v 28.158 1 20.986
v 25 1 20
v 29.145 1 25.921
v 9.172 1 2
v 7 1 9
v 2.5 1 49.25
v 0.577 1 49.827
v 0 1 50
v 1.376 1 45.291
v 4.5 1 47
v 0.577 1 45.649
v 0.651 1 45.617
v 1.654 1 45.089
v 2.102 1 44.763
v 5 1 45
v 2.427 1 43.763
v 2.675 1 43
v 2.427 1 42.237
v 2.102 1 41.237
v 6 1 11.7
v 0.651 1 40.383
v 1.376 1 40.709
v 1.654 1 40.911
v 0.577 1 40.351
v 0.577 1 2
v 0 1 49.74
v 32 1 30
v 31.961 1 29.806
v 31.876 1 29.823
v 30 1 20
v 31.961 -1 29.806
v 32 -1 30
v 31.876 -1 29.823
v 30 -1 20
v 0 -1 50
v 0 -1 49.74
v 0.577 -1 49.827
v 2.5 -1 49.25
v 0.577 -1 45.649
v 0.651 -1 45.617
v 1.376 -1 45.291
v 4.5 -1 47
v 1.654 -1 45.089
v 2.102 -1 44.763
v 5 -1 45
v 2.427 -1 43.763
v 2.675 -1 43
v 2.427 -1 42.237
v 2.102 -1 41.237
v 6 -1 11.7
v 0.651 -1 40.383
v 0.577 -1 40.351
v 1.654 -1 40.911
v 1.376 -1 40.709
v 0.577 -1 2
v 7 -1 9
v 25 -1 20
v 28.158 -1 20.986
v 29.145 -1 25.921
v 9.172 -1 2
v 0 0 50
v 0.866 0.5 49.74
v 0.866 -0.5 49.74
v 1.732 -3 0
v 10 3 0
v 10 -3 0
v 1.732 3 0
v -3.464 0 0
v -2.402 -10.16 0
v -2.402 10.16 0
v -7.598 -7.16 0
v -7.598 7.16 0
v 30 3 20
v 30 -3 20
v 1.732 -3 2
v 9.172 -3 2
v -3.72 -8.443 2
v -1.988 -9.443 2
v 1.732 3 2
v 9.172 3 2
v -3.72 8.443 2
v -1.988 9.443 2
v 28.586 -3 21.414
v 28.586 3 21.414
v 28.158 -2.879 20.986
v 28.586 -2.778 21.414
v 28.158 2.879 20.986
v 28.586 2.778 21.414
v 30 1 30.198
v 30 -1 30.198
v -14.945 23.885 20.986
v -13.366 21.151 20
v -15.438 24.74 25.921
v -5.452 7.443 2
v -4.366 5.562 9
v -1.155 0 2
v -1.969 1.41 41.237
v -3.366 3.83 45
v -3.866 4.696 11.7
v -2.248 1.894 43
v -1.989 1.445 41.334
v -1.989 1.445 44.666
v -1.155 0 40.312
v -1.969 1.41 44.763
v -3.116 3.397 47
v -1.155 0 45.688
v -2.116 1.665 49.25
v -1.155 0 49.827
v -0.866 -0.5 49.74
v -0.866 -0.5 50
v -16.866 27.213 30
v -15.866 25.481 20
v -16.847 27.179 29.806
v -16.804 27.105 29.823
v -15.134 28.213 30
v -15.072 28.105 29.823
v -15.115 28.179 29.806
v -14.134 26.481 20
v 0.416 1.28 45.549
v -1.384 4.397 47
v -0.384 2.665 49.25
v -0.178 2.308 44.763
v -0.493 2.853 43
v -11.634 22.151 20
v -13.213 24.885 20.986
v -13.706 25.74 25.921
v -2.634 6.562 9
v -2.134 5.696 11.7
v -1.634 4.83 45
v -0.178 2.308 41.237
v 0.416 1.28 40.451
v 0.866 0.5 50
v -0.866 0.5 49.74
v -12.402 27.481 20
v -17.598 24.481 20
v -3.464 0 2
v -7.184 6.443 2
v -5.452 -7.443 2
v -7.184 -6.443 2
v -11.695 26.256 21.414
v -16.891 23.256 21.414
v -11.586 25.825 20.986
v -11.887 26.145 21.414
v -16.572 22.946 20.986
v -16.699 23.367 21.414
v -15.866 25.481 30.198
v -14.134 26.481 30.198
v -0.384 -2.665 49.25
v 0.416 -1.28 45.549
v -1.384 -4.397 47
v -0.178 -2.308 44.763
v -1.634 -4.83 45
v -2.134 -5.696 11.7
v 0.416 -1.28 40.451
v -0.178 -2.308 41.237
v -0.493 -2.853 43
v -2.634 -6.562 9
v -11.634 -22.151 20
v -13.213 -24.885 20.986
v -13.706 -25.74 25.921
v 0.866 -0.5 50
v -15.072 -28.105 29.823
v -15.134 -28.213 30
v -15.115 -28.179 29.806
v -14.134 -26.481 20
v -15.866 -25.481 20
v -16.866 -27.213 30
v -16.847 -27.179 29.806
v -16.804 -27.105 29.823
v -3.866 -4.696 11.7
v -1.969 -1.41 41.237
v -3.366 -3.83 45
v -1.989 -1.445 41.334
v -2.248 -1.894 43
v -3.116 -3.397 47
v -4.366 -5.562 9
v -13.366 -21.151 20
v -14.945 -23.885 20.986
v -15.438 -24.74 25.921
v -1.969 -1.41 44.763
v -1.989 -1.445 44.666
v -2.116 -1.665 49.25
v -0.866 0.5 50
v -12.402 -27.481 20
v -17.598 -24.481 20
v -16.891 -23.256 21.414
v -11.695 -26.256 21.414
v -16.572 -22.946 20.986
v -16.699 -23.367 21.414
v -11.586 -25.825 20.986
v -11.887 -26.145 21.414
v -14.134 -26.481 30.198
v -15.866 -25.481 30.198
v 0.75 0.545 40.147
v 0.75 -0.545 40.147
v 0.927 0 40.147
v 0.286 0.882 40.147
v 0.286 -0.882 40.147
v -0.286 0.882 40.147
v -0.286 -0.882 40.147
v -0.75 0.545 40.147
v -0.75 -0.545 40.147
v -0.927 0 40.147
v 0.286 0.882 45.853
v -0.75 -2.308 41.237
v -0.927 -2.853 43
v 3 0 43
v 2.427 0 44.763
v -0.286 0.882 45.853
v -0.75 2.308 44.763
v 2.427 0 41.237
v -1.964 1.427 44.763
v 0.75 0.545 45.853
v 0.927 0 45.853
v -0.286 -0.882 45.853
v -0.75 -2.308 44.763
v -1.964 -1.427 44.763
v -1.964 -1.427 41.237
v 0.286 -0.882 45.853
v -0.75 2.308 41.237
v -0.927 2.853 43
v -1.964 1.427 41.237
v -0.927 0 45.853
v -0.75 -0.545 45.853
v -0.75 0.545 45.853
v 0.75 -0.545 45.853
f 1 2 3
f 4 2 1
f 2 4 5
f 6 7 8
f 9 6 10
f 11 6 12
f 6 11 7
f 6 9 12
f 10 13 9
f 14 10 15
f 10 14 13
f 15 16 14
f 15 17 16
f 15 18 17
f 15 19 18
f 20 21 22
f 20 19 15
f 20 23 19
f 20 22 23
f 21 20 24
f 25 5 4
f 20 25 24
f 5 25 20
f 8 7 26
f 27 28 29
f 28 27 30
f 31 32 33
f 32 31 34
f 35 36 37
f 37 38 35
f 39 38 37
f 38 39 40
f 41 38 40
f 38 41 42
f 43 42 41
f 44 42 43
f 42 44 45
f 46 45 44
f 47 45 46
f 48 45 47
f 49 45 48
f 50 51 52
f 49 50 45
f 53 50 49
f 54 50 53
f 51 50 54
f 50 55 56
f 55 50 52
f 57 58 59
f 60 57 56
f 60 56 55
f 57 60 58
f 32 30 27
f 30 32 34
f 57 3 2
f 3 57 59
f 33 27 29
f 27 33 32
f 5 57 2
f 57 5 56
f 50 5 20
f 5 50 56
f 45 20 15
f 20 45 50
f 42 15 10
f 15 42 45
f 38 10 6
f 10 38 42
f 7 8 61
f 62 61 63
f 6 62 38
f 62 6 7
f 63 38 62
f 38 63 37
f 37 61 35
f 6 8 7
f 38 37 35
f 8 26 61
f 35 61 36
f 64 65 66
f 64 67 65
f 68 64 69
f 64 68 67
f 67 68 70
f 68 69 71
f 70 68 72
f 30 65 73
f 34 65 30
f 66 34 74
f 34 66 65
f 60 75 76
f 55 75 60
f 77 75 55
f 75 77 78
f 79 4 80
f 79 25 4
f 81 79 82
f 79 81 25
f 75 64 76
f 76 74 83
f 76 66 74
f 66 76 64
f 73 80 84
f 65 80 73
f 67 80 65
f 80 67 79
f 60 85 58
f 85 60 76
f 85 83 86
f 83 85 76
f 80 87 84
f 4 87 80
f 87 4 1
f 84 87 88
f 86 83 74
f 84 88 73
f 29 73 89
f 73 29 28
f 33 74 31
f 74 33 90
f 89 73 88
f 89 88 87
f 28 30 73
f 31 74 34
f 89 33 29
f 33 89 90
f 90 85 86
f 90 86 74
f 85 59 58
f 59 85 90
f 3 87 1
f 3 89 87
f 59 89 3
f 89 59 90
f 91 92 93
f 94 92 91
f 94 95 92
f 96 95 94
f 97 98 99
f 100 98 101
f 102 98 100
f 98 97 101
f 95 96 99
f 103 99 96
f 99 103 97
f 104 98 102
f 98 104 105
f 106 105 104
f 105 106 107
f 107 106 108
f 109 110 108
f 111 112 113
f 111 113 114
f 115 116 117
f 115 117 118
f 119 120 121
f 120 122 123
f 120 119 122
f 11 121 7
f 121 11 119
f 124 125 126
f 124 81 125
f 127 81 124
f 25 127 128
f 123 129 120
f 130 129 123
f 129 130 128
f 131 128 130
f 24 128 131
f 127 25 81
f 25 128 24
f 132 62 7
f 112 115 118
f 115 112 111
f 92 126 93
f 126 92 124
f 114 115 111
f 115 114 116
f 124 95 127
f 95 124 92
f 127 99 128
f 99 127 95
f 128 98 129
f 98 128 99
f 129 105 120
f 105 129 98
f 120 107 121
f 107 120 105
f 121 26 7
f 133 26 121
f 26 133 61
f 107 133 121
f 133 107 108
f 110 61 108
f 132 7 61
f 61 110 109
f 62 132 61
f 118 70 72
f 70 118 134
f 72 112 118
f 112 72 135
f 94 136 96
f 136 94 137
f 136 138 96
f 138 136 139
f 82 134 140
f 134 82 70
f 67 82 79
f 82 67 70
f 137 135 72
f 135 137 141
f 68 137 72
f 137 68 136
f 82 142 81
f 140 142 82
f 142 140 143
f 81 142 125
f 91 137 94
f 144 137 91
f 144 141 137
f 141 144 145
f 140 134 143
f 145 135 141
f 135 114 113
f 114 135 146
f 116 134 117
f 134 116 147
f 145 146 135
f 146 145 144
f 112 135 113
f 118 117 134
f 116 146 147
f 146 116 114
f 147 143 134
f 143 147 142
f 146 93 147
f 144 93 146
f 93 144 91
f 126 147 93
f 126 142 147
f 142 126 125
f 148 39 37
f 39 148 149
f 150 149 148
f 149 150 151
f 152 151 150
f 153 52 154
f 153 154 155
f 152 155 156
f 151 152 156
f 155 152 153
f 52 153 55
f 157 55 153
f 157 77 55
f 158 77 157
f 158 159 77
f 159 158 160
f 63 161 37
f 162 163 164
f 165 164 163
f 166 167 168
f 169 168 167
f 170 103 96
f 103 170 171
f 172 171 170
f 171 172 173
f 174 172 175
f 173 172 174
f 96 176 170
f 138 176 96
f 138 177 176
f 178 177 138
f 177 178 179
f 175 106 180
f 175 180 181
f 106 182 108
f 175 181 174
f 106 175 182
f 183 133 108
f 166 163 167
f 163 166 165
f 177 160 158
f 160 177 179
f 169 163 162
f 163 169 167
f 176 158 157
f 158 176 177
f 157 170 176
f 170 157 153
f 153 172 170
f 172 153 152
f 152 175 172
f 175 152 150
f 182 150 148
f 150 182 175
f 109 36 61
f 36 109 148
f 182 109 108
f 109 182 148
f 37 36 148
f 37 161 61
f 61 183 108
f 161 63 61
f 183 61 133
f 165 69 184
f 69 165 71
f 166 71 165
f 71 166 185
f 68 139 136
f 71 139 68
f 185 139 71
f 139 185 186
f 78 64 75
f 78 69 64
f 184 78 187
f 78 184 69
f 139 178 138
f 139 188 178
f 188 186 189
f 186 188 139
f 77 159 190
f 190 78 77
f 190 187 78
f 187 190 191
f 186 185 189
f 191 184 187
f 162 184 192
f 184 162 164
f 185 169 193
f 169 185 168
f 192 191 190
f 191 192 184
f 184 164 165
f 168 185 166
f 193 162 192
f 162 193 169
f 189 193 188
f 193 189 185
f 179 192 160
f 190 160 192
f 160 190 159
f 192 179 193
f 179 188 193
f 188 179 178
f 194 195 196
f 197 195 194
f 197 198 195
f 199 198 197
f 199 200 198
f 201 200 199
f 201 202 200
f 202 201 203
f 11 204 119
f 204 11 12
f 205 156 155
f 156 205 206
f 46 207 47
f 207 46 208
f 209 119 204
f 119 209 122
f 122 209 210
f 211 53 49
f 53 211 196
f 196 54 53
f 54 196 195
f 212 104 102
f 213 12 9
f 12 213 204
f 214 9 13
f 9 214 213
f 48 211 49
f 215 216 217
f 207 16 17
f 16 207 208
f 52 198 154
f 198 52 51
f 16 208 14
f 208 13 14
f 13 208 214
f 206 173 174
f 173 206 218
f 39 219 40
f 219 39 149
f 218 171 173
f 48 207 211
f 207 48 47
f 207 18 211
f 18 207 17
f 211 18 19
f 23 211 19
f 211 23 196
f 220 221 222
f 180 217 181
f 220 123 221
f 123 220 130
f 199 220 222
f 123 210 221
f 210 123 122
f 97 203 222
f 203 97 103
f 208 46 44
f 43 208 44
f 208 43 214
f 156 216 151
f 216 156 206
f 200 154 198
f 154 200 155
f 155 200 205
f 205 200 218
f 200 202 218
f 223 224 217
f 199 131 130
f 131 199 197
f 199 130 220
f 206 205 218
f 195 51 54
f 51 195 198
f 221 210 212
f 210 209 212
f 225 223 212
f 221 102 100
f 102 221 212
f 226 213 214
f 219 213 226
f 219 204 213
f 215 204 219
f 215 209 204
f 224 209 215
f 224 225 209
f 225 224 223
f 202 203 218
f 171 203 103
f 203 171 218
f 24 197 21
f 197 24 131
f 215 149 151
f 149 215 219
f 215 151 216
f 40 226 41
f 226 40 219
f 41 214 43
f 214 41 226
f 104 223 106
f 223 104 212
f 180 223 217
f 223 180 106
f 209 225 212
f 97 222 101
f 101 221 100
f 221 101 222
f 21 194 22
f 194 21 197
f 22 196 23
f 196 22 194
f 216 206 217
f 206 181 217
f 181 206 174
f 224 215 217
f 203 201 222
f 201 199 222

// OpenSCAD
use <MCAD/2Dshapes.scad>

module triangle (w_b, h, l, centre = false)
{

    points = [
    [0,0],
    [w_b,0],
    [w_b/2,h],
    ];

    trans = (centre == true) ? [-w_b/2,-h/2,0] : [0,0,0] ;

    translate(trans)
        linear_extrude(l)
            polygon(points);
}

module trapezoid (w_b, w_t, h, l, centre = false)
{
    top_offset = ( w_b - w_t )/2;

    points = [
    [0,0],
    [w_b,0],
    [top_offset+w_t,h],
    [top_offset,h]
    ];

    trans = (centre == true) ? [-w_b/2,-h/2,0] : [0,0,0] ;

    translate(trans)
        linear_extrude(l)
            polygon(points);
}



w_shaft = 5;
l_shaft = 50;
w_head = 10;
h_head = 9;
w_arm = 30;
h_arm = 20;
w_arm_end = 5;
point_width = 2;
point_height = 10;
w_point = w_arm + point_width;
h_point = h_arm + point_height;
w_reinforcer = 6;
thk_reinforcer = 2;
thk_hook = 2;
num_hooks = 3;

hole_dia = 6;

grap_points = 
[
[0,0],
[w_head,            0],
[w_arm,             h_arm],
[w_point,           h_point],
[w_arm-w_arm_end,   h_arm],
[w_shaft * 1.4,           h_head],
[w_shaft * 1.2,           h_head * 1.3],
[w_shaft,           l_shaft-w_shaft],
[(0.9)*w_shaft,     l_shaft-(0.6)*w_shaft],
[(0.5)*w_shaft,     l_shaft-(0.15)*w_shaft],
[0,l_shaft], 
[0,0]
];

module arm()
{
    union()
    {
    rotate([90,0,0])
        linear_extrude(height=thk_hook,center=true)
            {
                polygon(grap_points);
            }
     translate([0,-w_reinforcer/2,0])
                cube([w_head,w_reinforcer,thk_reinforcer]);
            
      l_arm_flange = sqrt ( pow(h_arm, 2) + pow(w_arm-w_head, 2));
            
      arm_flange_angle = atan( (w_arm-w_head)/h_arm );
            
      translate([w_head,-w_reinforcer/2,0])
        rotate([0,-arm_flange_angle,0])
            cube([l_arm_flange,w_reinforcer,thk_reinforcer]);
            
      //l_arm_flange = sqrt ( pow(h_arm, 2) + pow(w_arm-w_head, 2));
      
      w_point = w_arm + point_width;
      h_point = h_arm + point_height;
      arm_point_angle = atan( (point_height)/point_width );
            
            rotate([0,0,-90])
             translate([-w_reinforcer/2,w_arm,h_arm])           
      rotate([arm_point_angle,0,0])
        
            trapezoid(w_reinforcer,thk_hook,point_height,thk_reinforcer,0);      
            
      }
}

difference()
{
    union()
    {
	
rot_angle = 360/num_hooks;
for(i = [0: rot_angle: 359])
{
    echo(i);
    rotate([0,0,i])
arm();
}


//    arm();
//    rotate([0,0,120])
//        arm();
//    rotate([0,0,2*120])
//        arm();
    }
    
    translate([0,0,l_shaft-w_shaft-2])
        sphere(d=hole_dia);
}
